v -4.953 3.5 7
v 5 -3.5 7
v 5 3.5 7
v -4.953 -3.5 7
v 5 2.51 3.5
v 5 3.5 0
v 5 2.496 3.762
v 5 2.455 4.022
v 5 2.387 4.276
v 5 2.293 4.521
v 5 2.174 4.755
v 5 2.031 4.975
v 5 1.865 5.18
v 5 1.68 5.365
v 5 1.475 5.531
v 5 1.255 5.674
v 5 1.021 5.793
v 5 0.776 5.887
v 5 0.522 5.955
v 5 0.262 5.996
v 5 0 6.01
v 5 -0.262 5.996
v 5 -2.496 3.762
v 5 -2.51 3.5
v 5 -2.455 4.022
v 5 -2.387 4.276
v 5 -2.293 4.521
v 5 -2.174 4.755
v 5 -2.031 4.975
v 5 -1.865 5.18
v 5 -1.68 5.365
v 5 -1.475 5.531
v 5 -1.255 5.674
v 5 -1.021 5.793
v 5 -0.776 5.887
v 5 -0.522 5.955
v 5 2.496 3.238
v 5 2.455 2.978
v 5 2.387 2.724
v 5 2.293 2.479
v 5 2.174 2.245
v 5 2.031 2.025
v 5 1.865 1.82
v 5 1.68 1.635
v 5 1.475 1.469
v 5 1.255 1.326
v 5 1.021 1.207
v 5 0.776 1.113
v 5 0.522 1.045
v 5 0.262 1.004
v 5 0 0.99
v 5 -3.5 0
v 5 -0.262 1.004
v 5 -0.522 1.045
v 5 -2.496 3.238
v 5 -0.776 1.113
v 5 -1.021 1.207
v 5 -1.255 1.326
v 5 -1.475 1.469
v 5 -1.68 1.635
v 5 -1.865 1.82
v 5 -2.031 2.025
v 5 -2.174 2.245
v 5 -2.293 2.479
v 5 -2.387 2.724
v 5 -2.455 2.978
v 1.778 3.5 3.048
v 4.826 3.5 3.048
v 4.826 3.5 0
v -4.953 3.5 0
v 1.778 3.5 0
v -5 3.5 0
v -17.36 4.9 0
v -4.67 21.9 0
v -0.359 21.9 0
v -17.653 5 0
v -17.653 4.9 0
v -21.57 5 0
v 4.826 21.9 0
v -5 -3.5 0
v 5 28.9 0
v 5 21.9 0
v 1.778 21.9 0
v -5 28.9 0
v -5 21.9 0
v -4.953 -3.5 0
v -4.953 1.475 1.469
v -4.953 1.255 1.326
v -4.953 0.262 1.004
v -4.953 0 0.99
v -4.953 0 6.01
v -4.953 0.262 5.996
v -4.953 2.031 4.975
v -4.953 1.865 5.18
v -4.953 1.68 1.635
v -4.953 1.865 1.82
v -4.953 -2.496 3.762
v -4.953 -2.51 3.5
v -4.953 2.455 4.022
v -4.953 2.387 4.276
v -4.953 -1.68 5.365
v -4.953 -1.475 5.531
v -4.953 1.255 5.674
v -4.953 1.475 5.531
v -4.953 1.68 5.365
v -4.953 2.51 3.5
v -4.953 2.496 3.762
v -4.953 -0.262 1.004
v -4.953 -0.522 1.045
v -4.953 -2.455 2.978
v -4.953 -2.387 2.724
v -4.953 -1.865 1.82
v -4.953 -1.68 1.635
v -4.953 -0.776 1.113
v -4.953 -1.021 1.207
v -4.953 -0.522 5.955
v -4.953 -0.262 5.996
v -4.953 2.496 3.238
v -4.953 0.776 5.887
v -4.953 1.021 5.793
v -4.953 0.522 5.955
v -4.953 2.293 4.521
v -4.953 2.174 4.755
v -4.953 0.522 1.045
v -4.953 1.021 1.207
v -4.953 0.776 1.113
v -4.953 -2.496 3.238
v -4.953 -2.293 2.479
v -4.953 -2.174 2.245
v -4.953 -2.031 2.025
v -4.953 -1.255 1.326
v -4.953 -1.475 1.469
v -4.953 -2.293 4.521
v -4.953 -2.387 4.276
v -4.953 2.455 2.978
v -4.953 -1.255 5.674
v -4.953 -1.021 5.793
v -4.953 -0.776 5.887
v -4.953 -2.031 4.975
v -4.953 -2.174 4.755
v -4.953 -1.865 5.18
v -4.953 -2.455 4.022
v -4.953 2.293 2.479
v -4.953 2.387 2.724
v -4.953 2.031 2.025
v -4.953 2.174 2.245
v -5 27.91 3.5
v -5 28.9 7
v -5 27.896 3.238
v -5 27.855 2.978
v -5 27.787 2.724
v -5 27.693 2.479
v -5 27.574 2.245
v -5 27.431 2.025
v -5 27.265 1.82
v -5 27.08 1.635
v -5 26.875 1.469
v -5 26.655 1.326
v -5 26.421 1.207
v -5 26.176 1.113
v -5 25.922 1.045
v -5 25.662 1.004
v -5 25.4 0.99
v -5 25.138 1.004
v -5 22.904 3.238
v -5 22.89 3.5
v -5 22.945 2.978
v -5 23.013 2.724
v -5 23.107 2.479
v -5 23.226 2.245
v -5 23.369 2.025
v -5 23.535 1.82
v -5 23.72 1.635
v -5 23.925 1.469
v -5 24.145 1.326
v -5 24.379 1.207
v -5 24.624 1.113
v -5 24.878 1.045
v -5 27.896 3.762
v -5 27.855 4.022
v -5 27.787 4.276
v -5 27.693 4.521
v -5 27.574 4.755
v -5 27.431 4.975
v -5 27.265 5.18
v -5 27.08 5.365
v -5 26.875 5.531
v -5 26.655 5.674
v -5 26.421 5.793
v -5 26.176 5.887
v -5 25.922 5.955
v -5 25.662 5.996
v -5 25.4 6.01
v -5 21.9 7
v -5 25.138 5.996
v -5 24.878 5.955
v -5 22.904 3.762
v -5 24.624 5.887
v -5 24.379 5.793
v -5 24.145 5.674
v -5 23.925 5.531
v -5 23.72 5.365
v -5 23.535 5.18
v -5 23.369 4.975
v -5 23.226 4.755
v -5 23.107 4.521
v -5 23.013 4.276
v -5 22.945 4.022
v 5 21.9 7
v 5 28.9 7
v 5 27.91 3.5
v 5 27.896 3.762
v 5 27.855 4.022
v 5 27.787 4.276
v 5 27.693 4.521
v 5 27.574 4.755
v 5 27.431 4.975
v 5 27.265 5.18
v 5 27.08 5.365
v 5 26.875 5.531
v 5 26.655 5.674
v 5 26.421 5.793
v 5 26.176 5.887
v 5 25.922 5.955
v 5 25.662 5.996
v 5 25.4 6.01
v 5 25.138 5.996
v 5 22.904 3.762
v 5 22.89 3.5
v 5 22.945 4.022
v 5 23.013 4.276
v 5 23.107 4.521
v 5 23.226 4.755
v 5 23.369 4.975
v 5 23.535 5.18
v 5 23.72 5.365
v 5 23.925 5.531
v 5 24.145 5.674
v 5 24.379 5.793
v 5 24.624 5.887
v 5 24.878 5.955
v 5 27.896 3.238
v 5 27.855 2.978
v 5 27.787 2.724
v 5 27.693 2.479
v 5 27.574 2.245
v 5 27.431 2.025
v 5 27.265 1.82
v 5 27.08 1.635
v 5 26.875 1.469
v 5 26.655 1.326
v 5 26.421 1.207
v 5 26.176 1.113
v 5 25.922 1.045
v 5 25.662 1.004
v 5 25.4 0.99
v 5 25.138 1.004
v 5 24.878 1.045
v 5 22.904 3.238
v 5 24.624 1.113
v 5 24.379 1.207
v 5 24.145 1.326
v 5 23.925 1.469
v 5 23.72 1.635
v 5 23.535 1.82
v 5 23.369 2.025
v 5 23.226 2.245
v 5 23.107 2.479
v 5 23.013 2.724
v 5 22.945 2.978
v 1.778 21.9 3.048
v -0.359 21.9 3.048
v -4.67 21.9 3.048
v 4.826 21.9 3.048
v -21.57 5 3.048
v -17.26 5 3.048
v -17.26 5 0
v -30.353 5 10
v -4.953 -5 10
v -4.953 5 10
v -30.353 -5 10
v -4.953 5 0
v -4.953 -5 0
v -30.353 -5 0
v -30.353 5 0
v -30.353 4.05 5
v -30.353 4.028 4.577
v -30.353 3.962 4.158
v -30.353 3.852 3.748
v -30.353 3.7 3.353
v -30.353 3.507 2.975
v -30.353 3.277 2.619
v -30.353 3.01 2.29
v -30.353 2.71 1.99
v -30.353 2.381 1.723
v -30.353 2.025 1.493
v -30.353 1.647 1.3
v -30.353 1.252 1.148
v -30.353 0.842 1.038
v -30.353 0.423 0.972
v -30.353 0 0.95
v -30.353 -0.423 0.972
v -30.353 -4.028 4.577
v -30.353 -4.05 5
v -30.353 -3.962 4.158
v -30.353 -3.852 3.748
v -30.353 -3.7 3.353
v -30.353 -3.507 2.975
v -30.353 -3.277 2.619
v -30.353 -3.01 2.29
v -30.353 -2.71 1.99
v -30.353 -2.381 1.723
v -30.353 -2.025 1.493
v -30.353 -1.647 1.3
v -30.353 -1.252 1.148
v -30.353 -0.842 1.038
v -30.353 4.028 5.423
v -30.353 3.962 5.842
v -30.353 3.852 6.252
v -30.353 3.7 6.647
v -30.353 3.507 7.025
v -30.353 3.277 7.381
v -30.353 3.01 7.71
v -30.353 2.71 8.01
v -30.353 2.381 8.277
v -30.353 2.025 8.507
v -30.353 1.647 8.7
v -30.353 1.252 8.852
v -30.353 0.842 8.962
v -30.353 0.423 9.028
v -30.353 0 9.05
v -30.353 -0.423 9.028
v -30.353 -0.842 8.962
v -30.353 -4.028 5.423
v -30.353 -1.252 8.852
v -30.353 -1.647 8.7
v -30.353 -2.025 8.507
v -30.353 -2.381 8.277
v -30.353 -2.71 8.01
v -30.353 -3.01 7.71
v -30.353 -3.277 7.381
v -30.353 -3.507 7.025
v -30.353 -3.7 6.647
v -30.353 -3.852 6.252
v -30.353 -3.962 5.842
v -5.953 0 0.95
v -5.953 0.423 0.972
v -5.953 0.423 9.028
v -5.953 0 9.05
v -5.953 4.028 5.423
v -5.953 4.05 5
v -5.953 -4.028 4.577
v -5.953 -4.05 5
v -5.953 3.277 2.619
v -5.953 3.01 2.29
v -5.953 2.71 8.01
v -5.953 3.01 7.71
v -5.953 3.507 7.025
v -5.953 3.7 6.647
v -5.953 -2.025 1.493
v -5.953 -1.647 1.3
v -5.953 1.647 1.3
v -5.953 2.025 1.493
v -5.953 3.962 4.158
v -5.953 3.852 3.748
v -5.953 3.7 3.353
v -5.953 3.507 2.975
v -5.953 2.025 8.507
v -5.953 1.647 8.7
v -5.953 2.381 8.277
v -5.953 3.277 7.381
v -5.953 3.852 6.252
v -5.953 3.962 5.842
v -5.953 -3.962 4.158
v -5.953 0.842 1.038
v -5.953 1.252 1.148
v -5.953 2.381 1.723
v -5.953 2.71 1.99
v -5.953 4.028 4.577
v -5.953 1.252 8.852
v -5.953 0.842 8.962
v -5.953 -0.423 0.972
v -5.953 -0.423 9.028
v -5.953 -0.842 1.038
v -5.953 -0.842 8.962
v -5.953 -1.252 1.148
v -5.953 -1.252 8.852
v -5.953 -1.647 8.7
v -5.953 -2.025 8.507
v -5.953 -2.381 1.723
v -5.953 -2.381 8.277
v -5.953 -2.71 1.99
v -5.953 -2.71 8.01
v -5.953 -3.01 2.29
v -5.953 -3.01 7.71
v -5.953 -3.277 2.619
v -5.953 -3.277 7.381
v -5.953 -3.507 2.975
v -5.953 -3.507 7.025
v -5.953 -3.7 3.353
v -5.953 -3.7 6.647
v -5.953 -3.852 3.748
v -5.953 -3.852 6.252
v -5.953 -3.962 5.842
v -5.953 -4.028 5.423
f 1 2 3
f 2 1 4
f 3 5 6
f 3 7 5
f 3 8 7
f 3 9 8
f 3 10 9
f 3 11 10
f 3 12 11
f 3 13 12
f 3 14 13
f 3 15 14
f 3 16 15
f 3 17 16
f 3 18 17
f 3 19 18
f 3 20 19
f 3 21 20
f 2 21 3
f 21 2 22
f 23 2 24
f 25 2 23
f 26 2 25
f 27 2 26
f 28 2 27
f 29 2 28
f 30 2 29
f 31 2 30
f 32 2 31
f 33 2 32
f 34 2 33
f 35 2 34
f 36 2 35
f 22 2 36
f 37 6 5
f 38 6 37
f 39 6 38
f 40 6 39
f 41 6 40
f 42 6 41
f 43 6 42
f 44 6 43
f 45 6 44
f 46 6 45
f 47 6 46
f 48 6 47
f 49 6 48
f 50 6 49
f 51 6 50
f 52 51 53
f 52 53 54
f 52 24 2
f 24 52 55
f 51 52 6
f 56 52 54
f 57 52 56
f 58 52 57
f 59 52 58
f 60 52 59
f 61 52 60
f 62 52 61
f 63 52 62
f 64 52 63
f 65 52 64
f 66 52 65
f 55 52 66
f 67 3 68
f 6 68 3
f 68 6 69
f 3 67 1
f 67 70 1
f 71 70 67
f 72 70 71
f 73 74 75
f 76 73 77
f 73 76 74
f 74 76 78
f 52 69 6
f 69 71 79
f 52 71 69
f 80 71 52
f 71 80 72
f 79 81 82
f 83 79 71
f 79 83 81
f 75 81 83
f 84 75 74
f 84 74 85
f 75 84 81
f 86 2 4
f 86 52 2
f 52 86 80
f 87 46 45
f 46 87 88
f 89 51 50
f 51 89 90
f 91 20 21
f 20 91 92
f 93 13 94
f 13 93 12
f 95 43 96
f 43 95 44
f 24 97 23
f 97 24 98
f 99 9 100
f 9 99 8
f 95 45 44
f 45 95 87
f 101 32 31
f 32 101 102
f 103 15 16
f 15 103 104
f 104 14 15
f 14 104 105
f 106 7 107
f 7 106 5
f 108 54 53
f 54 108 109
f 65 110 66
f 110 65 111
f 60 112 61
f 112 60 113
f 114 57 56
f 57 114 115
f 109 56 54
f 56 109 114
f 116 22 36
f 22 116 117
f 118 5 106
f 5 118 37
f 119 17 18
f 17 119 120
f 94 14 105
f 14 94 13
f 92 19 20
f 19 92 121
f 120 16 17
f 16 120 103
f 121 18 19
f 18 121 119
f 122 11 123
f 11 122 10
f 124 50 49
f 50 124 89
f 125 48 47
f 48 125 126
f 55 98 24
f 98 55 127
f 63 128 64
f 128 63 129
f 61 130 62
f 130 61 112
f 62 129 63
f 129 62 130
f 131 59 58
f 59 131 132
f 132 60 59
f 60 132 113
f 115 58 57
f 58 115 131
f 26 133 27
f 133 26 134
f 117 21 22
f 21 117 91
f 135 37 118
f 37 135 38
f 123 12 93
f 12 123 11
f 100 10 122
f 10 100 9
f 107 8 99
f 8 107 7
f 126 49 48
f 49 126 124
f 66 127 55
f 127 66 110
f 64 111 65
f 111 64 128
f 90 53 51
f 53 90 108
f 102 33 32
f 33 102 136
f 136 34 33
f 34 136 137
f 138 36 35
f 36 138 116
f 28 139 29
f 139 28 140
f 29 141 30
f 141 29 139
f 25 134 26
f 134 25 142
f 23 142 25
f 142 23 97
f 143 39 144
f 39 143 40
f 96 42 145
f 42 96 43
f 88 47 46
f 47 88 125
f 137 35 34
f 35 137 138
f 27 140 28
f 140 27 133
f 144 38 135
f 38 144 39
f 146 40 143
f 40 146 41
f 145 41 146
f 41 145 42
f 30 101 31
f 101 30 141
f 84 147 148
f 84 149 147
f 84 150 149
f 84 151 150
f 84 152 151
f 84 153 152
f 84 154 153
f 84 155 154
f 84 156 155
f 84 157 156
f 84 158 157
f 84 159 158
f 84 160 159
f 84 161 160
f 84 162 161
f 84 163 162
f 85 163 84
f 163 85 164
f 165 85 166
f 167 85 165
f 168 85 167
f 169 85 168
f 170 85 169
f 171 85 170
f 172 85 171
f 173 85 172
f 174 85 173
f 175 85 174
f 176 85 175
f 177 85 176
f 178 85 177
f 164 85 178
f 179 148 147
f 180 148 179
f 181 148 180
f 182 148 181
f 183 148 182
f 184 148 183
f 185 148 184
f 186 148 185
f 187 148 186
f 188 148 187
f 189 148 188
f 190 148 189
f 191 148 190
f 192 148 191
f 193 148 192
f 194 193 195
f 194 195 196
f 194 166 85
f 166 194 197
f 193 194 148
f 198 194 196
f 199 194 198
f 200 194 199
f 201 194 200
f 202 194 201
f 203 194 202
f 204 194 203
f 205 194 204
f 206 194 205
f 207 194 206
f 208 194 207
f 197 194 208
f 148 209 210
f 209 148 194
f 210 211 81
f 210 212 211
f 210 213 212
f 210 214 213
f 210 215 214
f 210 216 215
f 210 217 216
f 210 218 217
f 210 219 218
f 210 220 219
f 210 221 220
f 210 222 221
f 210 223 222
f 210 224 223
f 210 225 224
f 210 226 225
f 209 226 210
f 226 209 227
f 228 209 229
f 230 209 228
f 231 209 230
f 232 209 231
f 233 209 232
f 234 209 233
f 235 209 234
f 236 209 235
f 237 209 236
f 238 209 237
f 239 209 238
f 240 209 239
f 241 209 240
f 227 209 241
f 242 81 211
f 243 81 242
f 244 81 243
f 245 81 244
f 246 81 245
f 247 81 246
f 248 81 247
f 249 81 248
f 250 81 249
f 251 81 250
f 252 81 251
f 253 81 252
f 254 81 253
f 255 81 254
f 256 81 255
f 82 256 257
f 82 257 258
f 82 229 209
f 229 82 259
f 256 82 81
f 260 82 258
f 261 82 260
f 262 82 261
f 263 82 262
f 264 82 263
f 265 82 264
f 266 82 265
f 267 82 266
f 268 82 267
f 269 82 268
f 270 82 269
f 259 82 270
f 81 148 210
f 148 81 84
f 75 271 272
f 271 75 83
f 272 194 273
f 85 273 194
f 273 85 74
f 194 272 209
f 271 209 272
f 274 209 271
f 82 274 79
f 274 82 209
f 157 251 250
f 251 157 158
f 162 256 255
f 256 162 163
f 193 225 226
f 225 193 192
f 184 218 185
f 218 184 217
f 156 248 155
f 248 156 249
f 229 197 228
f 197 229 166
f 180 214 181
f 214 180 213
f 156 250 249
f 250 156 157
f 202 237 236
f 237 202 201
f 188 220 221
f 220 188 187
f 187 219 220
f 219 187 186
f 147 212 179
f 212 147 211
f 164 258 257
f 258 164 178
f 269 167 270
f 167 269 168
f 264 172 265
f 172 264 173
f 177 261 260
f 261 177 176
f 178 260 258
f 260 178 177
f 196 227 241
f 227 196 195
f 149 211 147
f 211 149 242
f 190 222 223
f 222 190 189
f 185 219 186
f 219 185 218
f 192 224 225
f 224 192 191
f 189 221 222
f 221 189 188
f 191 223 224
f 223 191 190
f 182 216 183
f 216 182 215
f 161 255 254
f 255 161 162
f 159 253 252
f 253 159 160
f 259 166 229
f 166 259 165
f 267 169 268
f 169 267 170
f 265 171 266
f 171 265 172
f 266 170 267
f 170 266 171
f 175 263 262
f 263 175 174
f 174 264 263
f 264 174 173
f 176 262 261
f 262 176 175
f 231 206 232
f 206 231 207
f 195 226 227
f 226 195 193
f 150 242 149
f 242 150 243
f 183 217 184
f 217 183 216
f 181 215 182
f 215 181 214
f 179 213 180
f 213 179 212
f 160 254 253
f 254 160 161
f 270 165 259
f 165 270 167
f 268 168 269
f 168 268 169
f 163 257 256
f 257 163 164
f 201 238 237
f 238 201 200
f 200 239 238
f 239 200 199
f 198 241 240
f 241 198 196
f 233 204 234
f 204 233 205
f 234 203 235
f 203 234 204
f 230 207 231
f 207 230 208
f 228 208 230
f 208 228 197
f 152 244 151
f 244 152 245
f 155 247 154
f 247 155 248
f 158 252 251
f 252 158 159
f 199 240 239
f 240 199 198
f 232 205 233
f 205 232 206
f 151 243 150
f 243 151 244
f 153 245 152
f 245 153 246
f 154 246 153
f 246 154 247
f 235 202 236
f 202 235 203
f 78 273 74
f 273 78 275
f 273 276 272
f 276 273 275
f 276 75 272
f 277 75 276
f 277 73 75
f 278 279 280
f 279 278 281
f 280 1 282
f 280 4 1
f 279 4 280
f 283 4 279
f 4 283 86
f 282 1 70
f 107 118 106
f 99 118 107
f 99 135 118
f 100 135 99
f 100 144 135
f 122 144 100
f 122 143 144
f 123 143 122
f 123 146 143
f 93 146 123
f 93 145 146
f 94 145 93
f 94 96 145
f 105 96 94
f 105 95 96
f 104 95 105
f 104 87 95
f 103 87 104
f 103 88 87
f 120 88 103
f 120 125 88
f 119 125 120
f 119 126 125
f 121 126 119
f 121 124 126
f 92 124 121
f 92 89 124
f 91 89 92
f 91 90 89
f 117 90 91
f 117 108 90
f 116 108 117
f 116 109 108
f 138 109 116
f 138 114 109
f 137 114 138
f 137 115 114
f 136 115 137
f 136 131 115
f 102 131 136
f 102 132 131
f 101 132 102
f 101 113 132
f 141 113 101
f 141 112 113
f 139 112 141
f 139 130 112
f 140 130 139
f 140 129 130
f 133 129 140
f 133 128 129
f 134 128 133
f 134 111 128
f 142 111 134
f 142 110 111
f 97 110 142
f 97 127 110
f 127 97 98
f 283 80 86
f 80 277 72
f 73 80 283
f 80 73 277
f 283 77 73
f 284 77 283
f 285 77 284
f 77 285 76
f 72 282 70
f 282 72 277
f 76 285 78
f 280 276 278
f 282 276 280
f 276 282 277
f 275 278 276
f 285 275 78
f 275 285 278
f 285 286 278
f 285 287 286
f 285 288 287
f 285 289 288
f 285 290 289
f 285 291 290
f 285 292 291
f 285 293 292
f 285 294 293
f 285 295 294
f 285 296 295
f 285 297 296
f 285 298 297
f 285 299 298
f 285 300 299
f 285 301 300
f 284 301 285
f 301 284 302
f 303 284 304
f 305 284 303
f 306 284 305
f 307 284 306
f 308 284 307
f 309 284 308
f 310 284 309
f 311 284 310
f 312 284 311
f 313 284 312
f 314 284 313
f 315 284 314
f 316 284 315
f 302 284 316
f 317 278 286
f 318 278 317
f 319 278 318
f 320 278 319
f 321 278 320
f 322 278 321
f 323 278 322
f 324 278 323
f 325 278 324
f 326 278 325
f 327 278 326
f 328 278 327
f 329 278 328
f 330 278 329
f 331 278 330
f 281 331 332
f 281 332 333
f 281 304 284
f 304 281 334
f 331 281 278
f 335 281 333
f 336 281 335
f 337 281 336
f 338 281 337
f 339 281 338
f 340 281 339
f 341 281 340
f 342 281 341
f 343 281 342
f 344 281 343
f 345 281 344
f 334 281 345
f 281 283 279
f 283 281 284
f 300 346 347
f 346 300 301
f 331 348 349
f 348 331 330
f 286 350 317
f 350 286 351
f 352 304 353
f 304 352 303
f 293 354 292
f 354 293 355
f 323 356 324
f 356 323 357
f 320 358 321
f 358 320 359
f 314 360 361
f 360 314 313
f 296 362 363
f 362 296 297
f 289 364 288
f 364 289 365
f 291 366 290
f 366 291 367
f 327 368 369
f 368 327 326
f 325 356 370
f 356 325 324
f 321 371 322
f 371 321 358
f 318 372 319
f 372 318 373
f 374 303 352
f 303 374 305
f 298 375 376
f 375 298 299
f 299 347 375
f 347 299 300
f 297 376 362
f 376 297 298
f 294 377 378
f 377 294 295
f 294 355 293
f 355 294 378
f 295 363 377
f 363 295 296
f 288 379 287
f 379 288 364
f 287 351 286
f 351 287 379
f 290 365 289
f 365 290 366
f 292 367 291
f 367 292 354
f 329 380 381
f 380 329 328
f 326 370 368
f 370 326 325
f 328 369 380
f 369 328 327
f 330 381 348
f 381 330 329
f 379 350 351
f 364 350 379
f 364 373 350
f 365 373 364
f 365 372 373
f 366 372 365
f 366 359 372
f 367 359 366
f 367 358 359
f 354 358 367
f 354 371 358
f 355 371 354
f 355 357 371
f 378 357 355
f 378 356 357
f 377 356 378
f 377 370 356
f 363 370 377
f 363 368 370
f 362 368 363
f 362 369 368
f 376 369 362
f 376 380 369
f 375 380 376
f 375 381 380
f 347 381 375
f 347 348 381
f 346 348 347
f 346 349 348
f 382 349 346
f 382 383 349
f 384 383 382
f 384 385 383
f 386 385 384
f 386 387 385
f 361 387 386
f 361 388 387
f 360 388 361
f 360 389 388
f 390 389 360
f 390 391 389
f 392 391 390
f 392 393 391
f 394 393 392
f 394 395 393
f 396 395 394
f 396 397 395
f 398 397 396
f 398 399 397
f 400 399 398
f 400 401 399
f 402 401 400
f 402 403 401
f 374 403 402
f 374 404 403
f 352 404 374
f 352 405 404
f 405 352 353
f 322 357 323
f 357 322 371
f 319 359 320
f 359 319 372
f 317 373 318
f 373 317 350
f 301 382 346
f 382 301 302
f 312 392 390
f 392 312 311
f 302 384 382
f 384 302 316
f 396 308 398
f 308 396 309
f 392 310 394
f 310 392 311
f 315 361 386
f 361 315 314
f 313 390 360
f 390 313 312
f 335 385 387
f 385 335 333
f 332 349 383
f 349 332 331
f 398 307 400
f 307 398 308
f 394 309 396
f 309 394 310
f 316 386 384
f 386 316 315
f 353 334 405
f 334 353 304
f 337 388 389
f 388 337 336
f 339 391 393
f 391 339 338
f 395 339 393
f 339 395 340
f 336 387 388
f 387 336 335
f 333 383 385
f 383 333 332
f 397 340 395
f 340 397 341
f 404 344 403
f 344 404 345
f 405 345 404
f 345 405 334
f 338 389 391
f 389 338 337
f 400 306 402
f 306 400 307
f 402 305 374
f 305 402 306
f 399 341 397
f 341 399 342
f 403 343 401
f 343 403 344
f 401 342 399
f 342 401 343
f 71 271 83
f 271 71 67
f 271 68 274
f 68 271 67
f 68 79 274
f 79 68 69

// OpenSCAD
mm=1;
eps=0.01;

in = 25.4*mm;

$fn=60;


module shaft(th, height) {
    cylinder(r=3.9*mm+th, h=height, center=true);
}

module arrow_holder() {
    translate([0,0,5*mm])
    rotate([0,90,0])
    difference(){
        cube([10*mm, 10*mm, 1*in],center=true);
        translate([0,0,-1*mm])
        shaft(0.15*mm,1*in);
    }
}

wall = 1.5*mm;
flange = 3*mm;
hole_depth = 1/8*in;
slop = 0.1*mm;
bearing_rad = 1/4 *in + slop;;

plug_rad = bearing_rad + wall;
epsilon = 0.01;
cut_thickness = 0.7*mm;

echo("plug radius", plug_rad, "mm");
num_cuts = 15;

module cup() {
    translate([0,0,wall])
    rotate([180,0,0])
    translate([0.77*in,0,0])
    difference() {
        union(){
            cylinder(r=bearing_rad + flange, h=wall);
            
            translate([0,0,-hole_depth])
            cylinder(r=plug_rad, h=hole_depth+wall);
            
        }
        union(){
            color("red")
            sphere(bearing_rad);
            
            color("green")
            for(rot=[0:num_cuts-1]) {
        
                rotate([0,0,360/num_cuts*rot])
                translate([-cut_thickness/2,-2*plug_rad,-2*hole_depth-epsilon])
                cube([cut_thickness, 2*plug_rad, 2*hole_depth]);
            }
            
        }
    }
}


module ball_endrod() {
    cup();
    
    translate([0,1*in,0])
    cup();
    
    translate([0.7*in,0.3*in,0])
    cube([0.12*in,0.4*in,0.12*in]);
    
    translate([-0.13*in,-0.1*mm,0])
    difference(){
        translate([0,0.2*in,0])
        rotate([0,0,-45])
        cube([0.12*in,0.9*in,0.12*in]);
        
        cube([10*mm,10*mm,1*in],center=true);
    }
    
    arrow_holder();
}

//ball_endrod();

module magnet_holder(){
    translate([0,0,3.5*mm])
    difference(){
        cube([10*mm, 7*mm, 7*mm],center=true);
        rotate([0,90,0])
        cylinder(r=2.51*mm,h=12*mm,center=true);
    }
}


module magnet_endrod() {
    magnet_holder();
    
    translate([0,1*in,0])
    magnet_holder();
    
    translate([0.07*in,0.13*in,0])
    cube([0.12*in,0.76*in,0.12*in]);
    
    translate([-0.85*in,-0.1*mm,0])
    difference(){
        translate([0,0.2*in,0])
        rotate([0,0,-45])
        cube([0.12*in,1.1*in,0.12*in]);
        
        union(){
            cube([10*mm,10*mm,1*in],center=true);
            translate([0.85*in,1*in,0])
            cube([10*mm,6.8*mm,6.8*mm],center=true);
        }
    
    }
    
    translate([-0.695*in,0,0])
    arrow_holder();
}


magnet_endrod();
